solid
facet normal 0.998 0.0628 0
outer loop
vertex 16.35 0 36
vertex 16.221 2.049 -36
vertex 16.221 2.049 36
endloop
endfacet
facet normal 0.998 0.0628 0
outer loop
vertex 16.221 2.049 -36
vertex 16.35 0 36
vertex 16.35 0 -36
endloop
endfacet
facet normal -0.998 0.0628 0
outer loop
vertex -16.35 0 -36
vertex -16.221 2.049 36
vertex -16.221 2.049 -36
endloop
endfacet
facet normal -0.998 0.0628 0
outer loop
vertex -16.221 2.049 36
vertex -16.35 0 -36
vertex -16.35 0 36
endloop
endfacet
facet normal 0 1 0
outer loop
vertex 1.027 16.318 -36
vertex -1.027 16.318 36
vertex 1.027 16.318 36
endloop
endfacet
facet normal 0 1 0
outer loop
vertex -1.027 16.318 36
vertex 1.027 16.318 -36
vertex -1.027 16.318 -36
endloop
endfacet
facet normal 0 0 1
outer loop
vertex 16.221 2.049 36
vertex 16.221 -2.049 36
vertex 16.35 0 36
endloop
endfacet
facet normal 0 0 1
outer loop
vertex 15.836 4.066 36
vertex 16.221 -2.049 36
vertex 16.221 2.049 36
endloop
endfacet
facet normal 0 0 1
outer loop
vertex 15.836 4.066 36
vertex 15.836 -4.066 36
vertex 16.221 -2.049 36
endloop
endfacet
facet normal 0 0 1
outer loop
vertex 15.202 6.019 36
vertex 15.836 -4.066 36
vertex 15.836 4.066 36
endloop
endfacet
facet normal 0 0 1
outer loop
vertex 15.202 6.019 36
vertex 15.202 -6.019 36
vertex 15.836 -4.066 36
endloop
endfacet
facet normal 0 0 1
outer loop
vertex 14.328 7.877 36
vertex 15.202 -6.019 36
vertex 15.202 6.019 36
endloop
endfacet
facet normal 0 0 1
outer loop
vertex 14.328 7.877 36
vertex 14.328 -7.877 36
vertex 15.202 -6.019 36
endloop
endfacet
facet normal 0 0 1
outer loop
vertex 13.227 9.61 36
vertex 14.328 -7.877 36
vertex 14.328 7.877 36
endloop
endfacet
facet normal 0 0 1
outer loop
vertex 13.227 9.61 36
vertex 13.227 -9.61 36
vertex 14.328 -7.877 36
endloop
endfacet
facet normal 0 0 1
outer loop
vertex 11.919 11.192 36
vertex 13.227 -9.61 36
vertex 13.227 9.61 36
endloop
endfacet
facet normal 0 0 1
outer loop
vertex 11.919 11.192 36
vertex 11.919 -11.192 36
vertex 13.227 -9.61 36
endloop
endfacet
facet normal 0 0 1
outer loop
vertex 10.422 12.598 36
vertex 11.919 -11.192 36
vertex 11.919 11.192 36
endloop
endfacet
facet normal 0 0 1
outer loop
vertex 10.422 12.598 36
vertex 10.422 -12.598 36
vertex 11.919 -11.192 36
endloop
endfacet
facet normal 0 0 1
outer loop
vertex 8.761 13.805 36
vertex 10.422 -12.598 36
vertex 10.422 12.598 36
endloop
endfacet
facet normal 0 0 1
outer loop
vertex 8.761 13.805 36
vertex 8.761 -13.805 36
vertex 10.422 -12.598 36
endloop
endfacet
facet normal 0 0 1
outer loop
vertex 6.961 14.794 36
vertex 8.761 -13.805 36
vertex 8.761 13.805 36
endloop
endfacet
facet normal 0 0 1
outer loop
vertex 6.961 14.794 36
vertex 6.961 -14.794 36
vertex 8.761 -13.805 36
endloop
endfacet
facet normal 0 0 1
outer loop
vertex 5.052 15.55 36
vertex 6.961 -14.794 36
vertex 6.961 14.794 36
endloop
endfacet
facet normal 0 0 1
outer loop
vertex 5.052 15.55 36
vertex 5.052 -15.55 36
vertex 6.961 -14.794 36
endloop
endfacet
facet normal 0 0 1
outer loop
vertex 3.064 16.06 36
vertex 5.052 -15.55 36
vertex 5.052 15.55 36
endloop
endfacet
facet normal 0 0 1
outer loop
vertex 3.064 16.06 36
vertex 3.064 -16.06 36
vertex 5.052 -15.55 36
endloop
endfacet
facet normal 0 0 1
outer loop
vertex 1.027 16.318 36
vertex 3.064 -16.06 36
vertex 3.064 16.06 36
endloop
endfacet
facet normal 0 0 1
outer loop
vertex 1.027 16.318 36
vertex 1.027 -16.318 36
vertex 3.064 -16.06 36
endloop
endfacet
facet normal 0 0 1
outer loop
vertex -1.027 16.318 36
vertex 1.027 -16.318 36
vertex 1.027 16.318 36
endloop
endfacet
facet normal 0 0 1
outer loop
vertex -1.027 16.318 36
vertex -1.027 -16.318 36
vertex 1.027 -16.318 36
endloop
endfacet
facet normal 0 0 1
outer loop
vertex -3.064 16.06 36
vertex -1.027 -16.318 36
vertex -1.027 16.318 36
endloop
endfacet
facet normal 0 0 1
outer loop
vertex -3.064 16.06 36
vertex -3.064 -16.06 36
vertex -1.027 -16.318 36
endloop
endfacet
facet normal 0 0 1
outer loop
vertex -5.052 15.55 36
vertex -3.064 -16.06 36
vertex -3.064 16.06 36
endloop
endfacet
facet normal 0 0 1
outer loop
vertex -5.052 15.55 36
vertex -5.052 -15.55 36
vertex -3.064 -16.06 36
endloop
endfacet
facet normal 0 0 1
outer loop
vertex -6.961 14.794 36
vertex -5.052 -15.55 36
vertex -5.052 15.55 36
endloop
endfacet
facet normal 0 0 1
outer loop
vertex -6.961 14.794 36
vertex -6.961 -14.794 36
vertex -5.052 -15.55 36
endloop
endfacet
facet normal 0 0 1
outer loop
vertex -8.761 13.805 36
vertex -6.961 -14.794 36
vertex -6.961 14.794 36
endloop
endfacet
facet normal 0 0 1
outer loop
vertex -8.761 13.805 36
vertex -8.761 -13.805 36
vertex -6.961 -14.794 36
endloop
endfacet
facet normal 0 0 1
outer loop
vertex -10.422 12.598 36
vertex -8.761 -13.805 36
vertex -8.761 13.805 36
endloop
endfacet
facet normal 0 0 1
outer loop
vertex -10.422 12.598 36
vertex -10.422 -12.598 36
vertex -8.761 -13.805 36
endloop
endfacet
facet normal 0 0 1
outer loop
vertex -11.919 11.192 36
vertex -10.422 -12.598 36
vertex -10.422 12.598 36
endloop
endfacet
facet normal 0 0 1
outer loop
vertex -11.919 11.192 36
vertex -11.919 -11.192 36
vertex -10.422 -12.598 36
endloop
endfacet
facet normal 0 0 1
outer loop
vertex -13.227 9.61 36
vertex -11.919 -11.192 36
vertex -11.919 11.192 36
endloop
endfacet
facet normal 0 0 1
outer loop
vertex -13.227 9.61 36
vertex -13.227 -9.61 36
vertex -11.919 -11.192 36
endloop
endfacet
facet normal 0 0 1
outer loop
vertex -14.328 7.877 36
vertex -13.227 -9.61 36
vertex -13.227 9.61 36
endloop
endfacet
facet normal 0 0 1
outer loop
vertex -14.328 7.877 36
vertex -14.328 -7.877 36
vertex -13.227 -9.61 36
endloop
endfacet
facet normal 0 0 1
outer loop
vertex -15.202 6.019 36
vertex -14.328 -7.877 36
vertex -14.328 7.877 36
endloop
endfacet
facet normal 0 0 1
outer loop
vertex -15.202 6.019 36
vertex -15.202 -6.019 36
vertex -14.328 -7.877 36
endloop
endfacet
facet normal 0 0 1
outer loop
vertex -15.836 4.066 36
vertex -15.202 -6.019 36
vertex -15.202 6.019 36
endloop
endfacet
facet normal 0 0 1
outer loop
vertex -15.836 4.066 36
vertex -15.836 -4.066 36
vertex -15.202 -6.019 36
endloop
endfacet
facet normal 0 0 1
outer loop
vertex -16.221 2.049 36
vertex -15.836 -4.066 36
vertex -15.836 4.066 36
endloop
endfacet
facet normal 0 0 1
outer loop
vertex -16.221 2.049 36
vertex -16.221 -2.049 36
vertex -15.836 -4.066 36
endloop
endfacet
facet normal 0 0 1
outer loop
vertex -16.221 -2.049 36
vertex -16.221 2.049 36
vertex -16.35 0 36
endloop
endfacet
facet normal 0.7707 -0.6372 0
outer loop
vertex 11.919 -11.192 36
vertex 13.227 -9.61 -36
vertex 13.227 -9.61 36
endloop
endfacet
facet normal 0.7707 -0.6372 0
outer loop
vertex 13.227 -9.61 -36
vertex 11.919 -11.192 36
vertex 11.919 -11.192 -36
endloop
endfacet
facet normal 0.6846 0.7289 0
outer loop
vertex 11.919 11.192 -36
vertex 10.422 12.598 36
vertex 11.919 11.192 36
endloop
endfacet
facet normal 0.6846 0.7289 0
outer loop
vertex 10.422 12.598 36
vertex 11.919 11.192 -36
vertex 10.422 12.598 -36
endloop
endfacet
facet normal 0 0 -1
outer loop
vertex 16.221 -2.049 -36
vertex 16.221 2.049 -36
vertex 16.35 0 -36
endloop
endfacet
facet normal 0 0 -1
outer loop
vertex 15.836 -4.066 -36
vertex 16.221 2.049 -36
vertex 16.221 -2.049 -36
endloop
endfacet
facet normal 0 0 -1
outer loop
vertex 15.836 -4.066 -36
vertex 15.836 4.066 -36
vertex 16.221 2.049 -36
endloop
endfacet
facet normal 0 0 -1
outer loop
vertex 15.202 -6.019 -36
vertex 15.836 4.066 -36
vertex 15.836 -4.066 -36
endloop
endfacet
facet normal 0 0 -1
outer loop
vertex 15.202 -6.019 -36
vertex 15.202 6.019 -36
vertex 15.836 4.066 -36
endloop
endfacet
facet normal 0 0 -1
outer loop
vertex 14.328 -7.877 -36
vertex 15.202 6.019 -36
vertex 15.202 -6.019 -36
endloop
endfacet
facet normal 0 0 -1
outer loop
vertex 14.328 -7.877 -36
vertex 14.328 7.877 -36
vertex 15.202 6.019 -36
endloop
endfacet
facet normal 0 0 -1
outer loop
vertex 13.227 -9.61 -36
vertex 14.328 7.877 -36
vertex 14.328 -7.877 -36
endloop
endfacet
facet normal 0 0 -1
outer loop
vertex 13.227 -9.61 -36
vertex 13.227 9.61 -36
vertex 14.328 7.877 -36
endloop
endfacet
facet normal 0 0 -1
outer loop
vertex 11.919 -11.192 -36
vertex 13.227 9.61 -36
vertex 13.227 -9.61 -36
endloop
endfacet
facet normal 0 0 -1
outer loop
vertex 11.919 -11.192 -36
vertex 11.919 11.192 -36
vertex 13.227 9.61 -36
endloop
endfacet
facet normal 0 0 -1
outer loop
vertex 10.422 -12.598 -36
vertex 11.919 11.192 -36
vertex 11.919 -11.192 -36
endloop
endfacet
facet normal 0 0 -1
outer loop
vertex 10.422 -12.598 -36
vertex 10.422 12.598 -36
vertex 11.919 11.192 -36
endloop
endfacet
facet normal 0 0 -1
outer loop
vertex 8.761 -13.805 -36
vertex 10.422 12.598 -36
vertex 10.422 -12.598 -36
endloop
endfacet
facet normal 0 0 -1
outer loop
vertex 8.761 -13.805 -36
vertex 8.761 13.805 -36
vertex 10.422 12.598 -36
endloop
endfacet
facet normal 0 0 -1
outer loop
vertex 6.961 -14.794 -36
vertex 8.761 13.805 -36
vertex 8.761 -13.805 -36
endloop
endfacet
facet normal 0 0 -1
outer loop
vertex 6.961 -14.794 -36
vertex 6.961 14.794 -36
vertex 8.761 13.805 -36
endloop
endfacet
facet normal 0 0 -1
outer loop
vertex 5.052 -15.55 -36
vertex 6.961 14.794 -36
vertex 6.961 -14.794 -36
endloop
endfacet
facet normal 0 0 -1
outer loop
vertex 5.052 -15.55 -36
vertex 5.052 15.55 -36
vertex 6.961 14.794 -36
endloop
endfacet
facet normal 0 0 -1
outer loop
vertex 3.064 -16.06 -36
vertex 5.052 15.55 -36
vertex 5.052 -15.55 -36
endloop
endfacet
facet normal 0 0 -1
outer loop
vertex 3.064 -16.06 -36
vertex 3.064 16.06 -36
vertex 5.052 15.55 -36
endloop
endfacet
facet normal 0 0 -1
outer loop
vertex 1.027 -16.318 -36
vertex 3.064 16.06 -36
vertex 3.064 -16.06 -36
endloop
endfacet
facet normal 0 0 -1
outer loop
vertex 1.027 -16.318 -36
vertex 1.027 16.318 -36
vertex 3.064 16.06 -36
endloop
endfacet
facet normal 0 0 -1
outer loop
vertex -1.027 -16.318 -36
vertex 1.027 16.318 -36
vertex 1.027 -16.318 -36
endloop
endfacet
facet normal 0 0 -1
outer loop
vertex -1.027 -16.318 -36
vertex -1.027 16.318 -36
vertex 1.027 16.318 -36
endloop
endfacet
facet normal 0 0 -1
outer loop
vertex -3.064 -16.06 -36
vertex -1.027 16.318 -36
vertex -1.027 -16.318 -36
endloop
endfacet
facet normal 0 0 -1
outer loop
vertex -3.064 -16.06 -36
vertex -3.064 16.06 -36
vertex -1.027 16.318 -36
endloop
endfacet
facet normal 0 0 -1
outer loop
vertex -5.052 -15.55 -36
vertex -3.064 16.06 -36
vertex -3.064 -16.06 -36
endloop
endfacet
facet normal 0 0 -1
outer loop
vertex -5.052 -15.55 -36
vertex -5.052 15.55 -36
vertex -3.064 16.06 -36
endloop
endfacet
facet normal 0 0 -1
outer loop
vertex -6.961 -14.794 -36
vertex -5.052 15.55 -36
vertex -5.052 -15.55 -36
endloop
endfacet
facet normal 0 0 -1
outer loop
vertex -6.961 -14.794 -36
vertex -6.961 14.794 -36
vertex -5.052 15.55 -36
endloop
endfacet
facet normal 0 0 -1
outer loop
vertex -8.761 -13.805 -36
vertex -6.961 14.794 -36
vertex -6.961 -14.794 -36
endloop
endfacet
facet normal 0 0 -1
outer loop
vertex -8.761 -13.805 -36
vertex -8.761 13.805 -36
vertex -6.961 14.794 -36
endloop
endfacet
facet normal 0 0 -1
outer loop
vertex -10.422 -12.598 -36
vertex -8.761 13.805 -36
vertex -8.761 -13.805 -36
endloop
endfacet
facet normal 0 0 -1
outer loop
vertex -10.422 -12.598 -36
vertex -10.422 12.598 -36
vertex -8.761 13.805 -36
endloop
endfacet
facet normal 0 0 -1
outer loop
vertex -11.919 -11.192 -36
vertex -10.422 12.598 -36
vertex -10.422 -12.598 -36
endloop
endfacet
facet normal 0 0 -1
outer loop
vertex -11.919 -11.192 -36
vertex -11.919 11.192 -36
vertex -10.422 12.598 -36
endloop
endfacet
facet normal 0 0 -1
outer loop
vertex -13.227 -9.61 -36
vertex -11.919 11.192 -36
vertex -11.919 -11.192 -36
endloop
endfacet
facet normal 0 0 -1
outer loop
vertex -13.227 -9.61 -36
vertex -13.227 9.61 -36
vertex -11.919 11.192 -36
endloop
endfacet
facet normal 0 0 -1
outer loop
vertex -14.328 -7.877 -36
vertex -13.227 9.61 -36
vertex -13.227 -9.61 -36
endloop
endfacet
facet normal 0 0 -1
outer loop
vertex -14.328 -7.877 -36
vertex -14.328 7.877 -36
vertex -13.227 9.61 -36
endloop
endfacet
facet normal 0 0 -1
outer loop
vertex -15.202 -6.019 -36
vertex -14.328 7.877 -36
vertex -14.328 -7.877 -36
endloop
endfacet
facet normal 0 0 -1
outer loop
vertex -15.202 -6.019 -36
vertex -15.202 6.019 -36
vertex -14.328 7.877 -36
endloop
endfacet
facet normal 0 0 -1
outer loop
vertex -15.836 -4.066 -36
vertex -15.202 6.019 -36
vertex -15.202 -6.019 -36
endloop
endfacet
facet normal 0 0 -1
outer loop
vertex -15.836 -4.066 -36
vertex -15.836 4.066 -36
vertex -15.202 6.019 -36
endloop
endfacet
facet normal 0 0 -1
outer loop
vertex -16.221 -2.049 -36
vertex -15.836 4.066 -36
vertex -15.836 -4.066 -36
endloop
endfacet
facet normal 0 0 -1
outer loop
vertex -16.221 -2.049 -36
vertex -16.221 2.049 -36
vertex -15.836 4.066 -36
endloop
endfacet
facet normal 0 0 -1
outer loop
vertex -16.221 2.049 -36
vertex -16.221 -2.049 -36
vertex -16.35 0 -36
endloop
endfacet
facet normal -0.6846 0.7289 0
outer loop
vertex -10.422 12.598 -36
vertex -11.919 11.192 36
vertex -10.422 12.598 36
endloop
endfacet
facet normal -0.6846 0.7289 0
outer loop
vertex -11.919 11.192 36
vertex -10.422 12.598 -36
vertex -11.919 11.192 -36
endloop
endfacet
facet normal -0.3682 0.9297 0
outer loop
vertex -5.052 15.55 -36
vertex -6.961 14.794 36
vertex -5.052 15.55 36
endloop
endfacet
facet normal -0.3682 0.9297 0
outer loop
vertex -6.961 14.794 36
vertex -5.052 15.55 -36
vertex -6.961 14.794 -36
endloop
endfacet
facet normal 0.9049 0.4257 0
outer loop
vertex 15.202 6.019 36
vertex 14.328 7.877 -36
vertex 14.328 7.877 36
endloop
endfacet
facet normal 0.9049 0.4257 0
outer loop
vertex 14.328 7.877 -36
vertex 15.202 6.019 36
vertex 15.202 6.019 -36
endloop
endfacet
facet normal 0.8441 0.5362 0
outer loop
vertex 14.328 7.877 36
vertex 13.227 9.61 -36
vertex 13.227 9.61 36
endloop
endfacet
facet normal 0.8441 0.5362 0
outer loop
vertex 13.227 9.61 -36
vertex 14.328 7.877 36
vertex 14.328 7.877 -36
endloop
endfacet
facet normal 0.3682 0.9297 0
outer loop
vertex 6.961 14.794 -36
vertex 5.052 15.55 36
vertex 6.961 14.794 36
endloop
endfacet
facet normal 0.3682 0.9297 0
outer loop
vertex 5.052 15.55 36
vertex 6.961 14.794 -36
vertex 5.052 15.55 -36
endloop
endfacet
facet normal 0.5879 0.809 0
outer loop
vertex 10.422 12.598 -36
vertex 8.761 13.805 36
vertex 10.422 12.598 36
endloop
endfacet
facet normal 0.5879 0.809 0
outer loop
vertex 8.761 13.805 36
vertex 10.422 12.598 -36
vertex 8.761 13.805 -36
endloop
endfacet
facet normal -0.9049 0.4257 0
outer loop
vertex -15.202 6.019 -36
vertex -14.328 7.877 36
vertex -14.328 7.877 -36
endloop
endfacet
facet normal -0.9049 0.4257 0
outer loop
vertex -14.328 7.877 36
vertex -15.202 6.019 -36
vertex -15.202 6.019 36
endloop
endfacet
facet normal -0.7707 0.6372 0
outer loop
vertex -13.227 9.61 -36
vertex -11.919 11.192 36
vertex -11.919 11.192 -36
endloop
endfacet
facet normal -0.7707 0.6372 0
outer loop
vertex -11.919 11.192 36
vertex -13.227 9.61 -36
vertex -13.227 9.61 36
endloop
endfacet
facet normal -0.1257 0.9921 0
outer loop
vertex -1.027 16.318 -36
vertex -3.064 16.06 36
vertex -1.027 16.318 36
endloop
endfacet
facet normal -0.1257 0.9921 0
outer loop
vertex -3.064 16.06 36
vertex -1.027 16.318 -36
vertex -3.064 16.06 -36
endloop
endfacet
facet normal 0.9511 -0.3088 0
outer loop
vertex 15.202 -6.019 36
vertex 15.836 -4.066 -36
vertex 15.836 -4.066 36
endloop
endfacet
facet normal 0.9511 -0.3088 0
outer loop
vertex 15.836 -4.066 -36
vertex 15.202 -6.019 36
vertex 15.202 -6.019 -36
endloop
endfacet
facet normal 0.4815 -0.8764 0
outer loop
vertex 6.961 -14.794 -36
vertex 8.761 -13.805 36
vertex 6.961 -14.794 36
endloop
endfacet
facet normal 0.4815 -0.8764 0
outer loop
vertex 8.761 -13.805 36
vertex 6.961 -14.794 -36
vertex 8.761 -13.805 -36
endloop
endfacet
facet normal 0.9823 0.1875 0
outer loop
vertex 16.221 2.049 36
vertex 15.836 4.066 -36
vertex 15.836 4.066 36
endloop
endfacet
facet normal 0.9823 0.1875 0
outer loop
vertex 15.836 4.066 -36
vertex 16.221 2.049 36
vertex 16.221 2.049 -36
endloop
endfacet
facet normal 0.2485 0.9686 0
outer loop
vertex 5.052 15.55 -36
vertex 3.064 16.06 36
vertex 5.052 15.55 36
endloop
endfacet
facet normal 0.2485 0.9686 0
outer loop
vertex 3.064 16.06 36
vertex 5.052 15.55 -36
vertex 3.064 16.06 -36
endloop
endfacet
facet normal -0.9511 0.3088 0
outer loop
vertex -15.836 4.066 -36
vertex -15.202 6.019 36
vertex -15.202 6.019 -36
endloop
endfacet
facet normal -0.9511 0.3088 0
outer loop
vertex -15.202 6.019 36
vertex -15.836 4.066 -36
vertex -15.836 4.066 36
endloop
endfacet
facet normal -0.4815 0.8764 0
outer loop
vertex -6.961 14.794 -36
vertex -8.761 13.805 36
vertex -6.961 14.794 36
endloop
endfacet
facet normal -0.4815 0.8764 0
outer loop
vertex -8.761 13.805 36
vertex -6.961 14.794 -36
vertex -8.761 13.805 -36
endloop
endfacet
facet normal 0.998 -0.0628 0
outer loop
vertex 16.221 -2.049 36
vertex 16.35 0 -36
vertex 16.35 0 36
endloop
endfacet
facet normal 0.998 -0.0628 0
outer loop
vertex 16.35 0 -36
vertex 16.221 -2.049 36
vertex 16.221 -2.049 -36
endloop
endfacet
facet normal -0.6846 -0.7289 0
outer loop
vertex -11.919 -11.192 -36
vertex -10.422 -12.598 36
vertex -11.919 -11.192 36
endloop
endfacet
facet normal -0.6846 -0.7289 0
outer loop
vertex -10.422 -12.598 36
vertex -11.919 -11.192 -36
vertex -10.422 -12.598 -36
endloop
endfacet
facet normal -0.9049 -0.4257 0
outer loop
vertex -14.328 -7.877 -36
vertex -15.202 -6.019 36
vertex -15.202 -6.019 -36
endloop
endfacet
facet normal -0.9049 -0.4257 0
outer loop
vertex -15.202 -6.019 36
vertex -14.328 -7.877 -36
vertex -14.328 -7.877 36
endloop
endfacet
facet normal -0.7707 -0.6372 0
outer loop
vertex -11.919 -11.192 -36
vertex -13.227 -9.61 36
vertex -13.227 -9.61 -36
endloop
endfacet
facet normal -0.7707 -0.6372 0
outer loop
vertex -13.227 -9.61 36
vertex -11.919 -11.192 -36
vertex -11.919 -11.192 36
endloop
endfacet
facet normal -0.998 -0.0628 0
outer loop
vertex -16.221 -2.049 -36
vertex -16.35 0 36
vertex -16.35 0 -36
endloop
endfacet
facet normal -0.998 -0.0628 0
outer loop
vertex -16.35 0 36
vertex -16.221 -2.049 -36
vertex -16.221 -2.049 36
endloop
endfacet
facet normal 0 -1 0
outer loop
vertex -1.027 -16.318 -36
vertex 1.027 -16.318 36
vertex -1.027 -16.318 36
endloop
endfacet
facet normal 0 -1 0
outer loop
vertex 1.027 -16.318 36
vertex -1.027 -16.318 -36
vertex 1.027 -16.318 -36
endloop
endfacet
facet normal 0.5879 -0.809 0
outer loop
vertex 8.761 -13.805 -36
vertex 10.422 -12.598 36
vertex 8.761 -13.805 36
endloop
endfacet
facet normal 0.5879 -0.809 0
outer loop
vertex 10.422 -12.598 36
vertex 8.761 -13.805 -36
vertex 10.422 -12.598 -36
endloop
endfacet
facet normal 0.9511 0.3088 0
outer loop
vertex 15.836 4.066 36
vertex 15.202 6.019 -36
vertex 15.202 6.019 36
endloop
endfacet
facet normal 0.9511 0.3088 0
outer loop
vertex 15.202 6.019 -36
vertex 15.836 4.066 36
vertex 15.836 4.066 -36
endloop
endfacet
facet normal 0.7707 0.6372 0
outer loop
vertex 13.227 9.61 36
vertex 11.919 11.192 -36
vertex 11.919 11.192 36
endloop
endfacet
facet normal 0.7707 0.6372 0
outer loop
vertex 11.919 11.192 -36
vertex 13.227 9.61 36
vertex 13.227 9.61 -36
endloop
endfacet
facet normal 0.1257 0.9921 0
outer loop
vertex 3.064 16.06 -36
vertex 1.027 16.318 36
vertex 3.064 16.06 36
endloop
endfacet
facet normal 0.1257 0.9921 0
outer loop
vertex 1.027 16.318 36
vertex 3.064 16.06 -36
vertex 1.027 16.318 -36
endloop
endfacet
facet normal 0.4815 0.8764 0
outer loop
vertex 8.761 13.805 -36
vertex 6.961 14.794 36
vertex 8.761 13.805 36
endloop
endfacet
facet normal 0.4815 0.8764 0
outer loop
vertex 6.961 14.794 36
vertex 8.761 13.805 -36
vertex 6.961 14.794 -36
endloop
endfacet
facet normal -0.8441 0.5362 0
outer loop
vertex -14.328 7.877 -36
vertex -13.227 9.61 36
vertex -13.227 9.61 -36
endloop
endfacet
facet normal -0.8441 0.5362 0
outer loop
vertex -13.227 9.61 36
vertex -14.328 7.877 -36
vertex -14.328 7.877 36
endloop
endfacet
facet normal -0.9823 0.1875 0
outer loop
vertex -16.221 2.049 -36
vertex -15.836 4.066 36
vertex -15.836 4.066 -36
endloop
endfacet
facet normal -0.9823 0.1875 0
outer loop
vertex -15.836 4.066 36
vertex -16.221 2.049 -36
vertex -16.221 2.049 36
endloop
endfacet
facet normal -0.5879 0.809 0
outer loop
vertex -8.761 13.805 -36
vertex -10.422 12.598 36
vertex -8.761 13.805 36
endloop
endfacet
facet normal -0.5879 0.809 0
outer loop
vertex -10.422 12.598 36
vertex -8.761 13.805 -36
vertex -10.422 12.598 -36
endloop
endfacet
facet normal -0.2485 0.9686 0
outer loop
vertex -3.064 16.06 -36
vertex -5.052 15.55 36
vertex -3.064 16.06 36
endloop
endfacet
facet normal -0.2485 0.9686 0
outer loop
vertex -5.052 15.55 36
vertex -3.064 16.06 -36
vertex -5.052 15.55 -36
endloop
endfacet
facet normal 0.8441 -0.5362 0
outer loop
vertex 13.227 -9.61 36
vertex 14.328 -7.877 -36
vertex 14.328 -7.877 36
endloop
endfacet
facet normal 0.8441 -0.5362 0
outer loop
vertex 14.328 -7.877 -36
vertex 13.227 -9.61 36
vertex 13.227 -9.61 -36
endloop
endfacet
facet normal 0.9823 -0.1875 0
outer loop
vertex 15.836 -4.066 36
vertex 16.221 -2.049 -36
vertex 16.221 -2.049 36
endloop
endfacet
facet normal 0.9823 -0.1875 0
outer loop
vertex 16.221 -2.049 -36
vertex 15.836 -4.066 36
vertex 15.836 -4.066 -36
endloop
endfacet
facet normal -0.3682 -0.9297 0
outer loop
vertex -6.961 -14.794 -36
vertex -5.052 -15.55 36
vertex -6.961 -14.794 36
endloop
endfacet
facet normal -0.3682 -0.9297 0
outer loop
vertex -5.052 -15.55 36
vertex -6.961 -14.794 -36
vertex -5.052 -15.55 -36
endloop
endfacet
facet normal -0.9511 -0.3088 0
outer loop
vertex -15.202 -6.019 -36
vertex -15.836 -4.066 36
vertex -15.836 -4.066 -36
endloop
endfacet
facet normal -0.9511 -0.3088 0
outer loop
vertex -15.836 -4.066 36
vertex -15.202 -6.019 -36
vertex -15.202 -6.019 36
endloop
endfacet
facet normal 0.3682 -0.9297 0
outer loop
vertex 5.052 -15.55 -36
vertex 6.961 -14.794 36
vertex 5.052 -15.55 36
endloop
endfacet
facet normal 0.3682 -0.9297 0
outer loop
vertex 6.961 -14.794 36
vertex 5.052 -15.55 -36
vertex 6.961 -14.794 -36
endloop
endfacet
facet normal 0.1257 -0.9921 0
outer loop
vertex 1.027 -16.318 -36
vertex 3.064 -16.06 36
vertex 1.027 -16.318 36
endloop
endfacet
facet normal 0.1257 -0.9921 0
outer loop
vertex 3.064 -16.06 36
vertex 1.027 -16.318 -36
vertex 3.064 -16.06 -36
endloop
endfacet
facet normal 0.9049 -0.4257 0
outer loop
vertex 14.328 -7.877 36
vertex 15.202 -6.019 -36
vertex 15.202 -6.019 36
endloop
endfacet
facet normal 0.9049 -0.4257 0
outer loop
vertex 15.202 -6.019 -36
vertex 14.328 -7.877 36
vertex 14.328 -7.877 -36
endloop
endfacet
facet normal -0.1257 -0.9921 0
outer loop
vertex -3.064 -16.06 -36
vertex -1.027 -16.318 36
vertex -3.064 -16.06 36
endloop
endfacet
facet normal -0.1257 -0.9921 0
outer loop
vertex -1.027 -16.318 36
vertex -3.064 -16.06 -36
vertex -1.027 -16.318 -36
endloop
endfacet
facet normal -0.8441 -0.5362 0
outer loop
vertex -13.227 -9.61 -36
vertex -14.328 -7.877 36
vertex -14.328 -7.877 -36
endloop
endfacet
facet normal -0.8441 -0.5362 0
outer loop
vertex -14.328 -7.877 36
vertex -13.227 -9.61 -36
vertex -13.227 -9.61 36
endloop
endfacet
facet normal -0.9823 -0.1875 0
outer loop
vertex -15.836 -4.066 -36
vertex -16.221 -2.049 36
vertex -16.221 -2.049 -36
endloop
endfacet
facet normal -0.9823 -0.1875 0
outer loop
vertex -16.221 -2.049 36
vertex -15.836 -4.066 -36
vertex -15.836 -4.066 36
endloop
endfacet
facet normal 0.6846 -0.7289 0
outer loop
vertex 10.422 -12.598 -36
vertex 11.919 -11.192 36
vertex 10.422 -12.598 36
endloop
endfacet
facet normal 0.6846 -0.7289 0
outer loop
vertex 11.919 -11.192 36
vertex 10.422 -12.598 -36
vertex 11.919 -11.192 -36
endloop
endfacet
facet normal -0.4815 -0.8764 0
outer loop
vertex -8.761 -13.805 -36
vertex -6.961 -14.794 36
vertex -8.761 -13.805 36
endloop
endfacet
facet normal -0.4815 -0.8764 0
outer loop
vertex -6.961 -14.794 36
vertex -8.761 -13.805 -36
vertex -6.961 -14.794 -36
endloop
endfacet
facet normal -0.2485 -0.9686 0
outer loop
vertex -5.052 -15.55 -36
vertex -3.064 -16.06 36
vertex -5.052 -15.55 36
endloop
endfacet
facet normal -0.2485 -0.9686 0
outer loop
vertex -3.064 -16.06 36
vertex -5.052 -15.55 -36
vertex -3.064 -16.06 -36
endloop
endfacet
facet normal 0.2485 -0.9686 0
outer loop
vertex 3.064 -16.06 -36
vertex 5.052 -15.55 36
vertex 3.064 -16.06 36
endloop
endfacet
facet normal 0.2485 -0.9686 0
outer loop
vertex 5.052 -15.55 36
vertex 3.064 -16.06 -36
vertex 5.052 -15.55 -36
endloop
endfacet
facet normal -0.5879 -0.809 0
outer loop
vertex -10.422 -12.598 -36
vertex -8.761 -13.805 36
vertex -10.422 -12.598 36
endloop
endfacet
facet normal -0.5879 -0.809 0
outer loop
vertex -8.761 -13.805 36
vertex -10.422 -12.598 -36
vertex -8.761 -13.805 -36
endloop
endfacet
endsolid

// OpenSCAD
$fn = 50;


difference() {
	union() {
		translate(v = [0, 0, -36.0000000000]) {
			cylinder(h = 72, r = 16.3500000000);
		}
	}
	union() {
		translate(v = [0, 0, -100.0000000000]) {
			cylinder(h = 200, r = 0);
		}
	}
}
